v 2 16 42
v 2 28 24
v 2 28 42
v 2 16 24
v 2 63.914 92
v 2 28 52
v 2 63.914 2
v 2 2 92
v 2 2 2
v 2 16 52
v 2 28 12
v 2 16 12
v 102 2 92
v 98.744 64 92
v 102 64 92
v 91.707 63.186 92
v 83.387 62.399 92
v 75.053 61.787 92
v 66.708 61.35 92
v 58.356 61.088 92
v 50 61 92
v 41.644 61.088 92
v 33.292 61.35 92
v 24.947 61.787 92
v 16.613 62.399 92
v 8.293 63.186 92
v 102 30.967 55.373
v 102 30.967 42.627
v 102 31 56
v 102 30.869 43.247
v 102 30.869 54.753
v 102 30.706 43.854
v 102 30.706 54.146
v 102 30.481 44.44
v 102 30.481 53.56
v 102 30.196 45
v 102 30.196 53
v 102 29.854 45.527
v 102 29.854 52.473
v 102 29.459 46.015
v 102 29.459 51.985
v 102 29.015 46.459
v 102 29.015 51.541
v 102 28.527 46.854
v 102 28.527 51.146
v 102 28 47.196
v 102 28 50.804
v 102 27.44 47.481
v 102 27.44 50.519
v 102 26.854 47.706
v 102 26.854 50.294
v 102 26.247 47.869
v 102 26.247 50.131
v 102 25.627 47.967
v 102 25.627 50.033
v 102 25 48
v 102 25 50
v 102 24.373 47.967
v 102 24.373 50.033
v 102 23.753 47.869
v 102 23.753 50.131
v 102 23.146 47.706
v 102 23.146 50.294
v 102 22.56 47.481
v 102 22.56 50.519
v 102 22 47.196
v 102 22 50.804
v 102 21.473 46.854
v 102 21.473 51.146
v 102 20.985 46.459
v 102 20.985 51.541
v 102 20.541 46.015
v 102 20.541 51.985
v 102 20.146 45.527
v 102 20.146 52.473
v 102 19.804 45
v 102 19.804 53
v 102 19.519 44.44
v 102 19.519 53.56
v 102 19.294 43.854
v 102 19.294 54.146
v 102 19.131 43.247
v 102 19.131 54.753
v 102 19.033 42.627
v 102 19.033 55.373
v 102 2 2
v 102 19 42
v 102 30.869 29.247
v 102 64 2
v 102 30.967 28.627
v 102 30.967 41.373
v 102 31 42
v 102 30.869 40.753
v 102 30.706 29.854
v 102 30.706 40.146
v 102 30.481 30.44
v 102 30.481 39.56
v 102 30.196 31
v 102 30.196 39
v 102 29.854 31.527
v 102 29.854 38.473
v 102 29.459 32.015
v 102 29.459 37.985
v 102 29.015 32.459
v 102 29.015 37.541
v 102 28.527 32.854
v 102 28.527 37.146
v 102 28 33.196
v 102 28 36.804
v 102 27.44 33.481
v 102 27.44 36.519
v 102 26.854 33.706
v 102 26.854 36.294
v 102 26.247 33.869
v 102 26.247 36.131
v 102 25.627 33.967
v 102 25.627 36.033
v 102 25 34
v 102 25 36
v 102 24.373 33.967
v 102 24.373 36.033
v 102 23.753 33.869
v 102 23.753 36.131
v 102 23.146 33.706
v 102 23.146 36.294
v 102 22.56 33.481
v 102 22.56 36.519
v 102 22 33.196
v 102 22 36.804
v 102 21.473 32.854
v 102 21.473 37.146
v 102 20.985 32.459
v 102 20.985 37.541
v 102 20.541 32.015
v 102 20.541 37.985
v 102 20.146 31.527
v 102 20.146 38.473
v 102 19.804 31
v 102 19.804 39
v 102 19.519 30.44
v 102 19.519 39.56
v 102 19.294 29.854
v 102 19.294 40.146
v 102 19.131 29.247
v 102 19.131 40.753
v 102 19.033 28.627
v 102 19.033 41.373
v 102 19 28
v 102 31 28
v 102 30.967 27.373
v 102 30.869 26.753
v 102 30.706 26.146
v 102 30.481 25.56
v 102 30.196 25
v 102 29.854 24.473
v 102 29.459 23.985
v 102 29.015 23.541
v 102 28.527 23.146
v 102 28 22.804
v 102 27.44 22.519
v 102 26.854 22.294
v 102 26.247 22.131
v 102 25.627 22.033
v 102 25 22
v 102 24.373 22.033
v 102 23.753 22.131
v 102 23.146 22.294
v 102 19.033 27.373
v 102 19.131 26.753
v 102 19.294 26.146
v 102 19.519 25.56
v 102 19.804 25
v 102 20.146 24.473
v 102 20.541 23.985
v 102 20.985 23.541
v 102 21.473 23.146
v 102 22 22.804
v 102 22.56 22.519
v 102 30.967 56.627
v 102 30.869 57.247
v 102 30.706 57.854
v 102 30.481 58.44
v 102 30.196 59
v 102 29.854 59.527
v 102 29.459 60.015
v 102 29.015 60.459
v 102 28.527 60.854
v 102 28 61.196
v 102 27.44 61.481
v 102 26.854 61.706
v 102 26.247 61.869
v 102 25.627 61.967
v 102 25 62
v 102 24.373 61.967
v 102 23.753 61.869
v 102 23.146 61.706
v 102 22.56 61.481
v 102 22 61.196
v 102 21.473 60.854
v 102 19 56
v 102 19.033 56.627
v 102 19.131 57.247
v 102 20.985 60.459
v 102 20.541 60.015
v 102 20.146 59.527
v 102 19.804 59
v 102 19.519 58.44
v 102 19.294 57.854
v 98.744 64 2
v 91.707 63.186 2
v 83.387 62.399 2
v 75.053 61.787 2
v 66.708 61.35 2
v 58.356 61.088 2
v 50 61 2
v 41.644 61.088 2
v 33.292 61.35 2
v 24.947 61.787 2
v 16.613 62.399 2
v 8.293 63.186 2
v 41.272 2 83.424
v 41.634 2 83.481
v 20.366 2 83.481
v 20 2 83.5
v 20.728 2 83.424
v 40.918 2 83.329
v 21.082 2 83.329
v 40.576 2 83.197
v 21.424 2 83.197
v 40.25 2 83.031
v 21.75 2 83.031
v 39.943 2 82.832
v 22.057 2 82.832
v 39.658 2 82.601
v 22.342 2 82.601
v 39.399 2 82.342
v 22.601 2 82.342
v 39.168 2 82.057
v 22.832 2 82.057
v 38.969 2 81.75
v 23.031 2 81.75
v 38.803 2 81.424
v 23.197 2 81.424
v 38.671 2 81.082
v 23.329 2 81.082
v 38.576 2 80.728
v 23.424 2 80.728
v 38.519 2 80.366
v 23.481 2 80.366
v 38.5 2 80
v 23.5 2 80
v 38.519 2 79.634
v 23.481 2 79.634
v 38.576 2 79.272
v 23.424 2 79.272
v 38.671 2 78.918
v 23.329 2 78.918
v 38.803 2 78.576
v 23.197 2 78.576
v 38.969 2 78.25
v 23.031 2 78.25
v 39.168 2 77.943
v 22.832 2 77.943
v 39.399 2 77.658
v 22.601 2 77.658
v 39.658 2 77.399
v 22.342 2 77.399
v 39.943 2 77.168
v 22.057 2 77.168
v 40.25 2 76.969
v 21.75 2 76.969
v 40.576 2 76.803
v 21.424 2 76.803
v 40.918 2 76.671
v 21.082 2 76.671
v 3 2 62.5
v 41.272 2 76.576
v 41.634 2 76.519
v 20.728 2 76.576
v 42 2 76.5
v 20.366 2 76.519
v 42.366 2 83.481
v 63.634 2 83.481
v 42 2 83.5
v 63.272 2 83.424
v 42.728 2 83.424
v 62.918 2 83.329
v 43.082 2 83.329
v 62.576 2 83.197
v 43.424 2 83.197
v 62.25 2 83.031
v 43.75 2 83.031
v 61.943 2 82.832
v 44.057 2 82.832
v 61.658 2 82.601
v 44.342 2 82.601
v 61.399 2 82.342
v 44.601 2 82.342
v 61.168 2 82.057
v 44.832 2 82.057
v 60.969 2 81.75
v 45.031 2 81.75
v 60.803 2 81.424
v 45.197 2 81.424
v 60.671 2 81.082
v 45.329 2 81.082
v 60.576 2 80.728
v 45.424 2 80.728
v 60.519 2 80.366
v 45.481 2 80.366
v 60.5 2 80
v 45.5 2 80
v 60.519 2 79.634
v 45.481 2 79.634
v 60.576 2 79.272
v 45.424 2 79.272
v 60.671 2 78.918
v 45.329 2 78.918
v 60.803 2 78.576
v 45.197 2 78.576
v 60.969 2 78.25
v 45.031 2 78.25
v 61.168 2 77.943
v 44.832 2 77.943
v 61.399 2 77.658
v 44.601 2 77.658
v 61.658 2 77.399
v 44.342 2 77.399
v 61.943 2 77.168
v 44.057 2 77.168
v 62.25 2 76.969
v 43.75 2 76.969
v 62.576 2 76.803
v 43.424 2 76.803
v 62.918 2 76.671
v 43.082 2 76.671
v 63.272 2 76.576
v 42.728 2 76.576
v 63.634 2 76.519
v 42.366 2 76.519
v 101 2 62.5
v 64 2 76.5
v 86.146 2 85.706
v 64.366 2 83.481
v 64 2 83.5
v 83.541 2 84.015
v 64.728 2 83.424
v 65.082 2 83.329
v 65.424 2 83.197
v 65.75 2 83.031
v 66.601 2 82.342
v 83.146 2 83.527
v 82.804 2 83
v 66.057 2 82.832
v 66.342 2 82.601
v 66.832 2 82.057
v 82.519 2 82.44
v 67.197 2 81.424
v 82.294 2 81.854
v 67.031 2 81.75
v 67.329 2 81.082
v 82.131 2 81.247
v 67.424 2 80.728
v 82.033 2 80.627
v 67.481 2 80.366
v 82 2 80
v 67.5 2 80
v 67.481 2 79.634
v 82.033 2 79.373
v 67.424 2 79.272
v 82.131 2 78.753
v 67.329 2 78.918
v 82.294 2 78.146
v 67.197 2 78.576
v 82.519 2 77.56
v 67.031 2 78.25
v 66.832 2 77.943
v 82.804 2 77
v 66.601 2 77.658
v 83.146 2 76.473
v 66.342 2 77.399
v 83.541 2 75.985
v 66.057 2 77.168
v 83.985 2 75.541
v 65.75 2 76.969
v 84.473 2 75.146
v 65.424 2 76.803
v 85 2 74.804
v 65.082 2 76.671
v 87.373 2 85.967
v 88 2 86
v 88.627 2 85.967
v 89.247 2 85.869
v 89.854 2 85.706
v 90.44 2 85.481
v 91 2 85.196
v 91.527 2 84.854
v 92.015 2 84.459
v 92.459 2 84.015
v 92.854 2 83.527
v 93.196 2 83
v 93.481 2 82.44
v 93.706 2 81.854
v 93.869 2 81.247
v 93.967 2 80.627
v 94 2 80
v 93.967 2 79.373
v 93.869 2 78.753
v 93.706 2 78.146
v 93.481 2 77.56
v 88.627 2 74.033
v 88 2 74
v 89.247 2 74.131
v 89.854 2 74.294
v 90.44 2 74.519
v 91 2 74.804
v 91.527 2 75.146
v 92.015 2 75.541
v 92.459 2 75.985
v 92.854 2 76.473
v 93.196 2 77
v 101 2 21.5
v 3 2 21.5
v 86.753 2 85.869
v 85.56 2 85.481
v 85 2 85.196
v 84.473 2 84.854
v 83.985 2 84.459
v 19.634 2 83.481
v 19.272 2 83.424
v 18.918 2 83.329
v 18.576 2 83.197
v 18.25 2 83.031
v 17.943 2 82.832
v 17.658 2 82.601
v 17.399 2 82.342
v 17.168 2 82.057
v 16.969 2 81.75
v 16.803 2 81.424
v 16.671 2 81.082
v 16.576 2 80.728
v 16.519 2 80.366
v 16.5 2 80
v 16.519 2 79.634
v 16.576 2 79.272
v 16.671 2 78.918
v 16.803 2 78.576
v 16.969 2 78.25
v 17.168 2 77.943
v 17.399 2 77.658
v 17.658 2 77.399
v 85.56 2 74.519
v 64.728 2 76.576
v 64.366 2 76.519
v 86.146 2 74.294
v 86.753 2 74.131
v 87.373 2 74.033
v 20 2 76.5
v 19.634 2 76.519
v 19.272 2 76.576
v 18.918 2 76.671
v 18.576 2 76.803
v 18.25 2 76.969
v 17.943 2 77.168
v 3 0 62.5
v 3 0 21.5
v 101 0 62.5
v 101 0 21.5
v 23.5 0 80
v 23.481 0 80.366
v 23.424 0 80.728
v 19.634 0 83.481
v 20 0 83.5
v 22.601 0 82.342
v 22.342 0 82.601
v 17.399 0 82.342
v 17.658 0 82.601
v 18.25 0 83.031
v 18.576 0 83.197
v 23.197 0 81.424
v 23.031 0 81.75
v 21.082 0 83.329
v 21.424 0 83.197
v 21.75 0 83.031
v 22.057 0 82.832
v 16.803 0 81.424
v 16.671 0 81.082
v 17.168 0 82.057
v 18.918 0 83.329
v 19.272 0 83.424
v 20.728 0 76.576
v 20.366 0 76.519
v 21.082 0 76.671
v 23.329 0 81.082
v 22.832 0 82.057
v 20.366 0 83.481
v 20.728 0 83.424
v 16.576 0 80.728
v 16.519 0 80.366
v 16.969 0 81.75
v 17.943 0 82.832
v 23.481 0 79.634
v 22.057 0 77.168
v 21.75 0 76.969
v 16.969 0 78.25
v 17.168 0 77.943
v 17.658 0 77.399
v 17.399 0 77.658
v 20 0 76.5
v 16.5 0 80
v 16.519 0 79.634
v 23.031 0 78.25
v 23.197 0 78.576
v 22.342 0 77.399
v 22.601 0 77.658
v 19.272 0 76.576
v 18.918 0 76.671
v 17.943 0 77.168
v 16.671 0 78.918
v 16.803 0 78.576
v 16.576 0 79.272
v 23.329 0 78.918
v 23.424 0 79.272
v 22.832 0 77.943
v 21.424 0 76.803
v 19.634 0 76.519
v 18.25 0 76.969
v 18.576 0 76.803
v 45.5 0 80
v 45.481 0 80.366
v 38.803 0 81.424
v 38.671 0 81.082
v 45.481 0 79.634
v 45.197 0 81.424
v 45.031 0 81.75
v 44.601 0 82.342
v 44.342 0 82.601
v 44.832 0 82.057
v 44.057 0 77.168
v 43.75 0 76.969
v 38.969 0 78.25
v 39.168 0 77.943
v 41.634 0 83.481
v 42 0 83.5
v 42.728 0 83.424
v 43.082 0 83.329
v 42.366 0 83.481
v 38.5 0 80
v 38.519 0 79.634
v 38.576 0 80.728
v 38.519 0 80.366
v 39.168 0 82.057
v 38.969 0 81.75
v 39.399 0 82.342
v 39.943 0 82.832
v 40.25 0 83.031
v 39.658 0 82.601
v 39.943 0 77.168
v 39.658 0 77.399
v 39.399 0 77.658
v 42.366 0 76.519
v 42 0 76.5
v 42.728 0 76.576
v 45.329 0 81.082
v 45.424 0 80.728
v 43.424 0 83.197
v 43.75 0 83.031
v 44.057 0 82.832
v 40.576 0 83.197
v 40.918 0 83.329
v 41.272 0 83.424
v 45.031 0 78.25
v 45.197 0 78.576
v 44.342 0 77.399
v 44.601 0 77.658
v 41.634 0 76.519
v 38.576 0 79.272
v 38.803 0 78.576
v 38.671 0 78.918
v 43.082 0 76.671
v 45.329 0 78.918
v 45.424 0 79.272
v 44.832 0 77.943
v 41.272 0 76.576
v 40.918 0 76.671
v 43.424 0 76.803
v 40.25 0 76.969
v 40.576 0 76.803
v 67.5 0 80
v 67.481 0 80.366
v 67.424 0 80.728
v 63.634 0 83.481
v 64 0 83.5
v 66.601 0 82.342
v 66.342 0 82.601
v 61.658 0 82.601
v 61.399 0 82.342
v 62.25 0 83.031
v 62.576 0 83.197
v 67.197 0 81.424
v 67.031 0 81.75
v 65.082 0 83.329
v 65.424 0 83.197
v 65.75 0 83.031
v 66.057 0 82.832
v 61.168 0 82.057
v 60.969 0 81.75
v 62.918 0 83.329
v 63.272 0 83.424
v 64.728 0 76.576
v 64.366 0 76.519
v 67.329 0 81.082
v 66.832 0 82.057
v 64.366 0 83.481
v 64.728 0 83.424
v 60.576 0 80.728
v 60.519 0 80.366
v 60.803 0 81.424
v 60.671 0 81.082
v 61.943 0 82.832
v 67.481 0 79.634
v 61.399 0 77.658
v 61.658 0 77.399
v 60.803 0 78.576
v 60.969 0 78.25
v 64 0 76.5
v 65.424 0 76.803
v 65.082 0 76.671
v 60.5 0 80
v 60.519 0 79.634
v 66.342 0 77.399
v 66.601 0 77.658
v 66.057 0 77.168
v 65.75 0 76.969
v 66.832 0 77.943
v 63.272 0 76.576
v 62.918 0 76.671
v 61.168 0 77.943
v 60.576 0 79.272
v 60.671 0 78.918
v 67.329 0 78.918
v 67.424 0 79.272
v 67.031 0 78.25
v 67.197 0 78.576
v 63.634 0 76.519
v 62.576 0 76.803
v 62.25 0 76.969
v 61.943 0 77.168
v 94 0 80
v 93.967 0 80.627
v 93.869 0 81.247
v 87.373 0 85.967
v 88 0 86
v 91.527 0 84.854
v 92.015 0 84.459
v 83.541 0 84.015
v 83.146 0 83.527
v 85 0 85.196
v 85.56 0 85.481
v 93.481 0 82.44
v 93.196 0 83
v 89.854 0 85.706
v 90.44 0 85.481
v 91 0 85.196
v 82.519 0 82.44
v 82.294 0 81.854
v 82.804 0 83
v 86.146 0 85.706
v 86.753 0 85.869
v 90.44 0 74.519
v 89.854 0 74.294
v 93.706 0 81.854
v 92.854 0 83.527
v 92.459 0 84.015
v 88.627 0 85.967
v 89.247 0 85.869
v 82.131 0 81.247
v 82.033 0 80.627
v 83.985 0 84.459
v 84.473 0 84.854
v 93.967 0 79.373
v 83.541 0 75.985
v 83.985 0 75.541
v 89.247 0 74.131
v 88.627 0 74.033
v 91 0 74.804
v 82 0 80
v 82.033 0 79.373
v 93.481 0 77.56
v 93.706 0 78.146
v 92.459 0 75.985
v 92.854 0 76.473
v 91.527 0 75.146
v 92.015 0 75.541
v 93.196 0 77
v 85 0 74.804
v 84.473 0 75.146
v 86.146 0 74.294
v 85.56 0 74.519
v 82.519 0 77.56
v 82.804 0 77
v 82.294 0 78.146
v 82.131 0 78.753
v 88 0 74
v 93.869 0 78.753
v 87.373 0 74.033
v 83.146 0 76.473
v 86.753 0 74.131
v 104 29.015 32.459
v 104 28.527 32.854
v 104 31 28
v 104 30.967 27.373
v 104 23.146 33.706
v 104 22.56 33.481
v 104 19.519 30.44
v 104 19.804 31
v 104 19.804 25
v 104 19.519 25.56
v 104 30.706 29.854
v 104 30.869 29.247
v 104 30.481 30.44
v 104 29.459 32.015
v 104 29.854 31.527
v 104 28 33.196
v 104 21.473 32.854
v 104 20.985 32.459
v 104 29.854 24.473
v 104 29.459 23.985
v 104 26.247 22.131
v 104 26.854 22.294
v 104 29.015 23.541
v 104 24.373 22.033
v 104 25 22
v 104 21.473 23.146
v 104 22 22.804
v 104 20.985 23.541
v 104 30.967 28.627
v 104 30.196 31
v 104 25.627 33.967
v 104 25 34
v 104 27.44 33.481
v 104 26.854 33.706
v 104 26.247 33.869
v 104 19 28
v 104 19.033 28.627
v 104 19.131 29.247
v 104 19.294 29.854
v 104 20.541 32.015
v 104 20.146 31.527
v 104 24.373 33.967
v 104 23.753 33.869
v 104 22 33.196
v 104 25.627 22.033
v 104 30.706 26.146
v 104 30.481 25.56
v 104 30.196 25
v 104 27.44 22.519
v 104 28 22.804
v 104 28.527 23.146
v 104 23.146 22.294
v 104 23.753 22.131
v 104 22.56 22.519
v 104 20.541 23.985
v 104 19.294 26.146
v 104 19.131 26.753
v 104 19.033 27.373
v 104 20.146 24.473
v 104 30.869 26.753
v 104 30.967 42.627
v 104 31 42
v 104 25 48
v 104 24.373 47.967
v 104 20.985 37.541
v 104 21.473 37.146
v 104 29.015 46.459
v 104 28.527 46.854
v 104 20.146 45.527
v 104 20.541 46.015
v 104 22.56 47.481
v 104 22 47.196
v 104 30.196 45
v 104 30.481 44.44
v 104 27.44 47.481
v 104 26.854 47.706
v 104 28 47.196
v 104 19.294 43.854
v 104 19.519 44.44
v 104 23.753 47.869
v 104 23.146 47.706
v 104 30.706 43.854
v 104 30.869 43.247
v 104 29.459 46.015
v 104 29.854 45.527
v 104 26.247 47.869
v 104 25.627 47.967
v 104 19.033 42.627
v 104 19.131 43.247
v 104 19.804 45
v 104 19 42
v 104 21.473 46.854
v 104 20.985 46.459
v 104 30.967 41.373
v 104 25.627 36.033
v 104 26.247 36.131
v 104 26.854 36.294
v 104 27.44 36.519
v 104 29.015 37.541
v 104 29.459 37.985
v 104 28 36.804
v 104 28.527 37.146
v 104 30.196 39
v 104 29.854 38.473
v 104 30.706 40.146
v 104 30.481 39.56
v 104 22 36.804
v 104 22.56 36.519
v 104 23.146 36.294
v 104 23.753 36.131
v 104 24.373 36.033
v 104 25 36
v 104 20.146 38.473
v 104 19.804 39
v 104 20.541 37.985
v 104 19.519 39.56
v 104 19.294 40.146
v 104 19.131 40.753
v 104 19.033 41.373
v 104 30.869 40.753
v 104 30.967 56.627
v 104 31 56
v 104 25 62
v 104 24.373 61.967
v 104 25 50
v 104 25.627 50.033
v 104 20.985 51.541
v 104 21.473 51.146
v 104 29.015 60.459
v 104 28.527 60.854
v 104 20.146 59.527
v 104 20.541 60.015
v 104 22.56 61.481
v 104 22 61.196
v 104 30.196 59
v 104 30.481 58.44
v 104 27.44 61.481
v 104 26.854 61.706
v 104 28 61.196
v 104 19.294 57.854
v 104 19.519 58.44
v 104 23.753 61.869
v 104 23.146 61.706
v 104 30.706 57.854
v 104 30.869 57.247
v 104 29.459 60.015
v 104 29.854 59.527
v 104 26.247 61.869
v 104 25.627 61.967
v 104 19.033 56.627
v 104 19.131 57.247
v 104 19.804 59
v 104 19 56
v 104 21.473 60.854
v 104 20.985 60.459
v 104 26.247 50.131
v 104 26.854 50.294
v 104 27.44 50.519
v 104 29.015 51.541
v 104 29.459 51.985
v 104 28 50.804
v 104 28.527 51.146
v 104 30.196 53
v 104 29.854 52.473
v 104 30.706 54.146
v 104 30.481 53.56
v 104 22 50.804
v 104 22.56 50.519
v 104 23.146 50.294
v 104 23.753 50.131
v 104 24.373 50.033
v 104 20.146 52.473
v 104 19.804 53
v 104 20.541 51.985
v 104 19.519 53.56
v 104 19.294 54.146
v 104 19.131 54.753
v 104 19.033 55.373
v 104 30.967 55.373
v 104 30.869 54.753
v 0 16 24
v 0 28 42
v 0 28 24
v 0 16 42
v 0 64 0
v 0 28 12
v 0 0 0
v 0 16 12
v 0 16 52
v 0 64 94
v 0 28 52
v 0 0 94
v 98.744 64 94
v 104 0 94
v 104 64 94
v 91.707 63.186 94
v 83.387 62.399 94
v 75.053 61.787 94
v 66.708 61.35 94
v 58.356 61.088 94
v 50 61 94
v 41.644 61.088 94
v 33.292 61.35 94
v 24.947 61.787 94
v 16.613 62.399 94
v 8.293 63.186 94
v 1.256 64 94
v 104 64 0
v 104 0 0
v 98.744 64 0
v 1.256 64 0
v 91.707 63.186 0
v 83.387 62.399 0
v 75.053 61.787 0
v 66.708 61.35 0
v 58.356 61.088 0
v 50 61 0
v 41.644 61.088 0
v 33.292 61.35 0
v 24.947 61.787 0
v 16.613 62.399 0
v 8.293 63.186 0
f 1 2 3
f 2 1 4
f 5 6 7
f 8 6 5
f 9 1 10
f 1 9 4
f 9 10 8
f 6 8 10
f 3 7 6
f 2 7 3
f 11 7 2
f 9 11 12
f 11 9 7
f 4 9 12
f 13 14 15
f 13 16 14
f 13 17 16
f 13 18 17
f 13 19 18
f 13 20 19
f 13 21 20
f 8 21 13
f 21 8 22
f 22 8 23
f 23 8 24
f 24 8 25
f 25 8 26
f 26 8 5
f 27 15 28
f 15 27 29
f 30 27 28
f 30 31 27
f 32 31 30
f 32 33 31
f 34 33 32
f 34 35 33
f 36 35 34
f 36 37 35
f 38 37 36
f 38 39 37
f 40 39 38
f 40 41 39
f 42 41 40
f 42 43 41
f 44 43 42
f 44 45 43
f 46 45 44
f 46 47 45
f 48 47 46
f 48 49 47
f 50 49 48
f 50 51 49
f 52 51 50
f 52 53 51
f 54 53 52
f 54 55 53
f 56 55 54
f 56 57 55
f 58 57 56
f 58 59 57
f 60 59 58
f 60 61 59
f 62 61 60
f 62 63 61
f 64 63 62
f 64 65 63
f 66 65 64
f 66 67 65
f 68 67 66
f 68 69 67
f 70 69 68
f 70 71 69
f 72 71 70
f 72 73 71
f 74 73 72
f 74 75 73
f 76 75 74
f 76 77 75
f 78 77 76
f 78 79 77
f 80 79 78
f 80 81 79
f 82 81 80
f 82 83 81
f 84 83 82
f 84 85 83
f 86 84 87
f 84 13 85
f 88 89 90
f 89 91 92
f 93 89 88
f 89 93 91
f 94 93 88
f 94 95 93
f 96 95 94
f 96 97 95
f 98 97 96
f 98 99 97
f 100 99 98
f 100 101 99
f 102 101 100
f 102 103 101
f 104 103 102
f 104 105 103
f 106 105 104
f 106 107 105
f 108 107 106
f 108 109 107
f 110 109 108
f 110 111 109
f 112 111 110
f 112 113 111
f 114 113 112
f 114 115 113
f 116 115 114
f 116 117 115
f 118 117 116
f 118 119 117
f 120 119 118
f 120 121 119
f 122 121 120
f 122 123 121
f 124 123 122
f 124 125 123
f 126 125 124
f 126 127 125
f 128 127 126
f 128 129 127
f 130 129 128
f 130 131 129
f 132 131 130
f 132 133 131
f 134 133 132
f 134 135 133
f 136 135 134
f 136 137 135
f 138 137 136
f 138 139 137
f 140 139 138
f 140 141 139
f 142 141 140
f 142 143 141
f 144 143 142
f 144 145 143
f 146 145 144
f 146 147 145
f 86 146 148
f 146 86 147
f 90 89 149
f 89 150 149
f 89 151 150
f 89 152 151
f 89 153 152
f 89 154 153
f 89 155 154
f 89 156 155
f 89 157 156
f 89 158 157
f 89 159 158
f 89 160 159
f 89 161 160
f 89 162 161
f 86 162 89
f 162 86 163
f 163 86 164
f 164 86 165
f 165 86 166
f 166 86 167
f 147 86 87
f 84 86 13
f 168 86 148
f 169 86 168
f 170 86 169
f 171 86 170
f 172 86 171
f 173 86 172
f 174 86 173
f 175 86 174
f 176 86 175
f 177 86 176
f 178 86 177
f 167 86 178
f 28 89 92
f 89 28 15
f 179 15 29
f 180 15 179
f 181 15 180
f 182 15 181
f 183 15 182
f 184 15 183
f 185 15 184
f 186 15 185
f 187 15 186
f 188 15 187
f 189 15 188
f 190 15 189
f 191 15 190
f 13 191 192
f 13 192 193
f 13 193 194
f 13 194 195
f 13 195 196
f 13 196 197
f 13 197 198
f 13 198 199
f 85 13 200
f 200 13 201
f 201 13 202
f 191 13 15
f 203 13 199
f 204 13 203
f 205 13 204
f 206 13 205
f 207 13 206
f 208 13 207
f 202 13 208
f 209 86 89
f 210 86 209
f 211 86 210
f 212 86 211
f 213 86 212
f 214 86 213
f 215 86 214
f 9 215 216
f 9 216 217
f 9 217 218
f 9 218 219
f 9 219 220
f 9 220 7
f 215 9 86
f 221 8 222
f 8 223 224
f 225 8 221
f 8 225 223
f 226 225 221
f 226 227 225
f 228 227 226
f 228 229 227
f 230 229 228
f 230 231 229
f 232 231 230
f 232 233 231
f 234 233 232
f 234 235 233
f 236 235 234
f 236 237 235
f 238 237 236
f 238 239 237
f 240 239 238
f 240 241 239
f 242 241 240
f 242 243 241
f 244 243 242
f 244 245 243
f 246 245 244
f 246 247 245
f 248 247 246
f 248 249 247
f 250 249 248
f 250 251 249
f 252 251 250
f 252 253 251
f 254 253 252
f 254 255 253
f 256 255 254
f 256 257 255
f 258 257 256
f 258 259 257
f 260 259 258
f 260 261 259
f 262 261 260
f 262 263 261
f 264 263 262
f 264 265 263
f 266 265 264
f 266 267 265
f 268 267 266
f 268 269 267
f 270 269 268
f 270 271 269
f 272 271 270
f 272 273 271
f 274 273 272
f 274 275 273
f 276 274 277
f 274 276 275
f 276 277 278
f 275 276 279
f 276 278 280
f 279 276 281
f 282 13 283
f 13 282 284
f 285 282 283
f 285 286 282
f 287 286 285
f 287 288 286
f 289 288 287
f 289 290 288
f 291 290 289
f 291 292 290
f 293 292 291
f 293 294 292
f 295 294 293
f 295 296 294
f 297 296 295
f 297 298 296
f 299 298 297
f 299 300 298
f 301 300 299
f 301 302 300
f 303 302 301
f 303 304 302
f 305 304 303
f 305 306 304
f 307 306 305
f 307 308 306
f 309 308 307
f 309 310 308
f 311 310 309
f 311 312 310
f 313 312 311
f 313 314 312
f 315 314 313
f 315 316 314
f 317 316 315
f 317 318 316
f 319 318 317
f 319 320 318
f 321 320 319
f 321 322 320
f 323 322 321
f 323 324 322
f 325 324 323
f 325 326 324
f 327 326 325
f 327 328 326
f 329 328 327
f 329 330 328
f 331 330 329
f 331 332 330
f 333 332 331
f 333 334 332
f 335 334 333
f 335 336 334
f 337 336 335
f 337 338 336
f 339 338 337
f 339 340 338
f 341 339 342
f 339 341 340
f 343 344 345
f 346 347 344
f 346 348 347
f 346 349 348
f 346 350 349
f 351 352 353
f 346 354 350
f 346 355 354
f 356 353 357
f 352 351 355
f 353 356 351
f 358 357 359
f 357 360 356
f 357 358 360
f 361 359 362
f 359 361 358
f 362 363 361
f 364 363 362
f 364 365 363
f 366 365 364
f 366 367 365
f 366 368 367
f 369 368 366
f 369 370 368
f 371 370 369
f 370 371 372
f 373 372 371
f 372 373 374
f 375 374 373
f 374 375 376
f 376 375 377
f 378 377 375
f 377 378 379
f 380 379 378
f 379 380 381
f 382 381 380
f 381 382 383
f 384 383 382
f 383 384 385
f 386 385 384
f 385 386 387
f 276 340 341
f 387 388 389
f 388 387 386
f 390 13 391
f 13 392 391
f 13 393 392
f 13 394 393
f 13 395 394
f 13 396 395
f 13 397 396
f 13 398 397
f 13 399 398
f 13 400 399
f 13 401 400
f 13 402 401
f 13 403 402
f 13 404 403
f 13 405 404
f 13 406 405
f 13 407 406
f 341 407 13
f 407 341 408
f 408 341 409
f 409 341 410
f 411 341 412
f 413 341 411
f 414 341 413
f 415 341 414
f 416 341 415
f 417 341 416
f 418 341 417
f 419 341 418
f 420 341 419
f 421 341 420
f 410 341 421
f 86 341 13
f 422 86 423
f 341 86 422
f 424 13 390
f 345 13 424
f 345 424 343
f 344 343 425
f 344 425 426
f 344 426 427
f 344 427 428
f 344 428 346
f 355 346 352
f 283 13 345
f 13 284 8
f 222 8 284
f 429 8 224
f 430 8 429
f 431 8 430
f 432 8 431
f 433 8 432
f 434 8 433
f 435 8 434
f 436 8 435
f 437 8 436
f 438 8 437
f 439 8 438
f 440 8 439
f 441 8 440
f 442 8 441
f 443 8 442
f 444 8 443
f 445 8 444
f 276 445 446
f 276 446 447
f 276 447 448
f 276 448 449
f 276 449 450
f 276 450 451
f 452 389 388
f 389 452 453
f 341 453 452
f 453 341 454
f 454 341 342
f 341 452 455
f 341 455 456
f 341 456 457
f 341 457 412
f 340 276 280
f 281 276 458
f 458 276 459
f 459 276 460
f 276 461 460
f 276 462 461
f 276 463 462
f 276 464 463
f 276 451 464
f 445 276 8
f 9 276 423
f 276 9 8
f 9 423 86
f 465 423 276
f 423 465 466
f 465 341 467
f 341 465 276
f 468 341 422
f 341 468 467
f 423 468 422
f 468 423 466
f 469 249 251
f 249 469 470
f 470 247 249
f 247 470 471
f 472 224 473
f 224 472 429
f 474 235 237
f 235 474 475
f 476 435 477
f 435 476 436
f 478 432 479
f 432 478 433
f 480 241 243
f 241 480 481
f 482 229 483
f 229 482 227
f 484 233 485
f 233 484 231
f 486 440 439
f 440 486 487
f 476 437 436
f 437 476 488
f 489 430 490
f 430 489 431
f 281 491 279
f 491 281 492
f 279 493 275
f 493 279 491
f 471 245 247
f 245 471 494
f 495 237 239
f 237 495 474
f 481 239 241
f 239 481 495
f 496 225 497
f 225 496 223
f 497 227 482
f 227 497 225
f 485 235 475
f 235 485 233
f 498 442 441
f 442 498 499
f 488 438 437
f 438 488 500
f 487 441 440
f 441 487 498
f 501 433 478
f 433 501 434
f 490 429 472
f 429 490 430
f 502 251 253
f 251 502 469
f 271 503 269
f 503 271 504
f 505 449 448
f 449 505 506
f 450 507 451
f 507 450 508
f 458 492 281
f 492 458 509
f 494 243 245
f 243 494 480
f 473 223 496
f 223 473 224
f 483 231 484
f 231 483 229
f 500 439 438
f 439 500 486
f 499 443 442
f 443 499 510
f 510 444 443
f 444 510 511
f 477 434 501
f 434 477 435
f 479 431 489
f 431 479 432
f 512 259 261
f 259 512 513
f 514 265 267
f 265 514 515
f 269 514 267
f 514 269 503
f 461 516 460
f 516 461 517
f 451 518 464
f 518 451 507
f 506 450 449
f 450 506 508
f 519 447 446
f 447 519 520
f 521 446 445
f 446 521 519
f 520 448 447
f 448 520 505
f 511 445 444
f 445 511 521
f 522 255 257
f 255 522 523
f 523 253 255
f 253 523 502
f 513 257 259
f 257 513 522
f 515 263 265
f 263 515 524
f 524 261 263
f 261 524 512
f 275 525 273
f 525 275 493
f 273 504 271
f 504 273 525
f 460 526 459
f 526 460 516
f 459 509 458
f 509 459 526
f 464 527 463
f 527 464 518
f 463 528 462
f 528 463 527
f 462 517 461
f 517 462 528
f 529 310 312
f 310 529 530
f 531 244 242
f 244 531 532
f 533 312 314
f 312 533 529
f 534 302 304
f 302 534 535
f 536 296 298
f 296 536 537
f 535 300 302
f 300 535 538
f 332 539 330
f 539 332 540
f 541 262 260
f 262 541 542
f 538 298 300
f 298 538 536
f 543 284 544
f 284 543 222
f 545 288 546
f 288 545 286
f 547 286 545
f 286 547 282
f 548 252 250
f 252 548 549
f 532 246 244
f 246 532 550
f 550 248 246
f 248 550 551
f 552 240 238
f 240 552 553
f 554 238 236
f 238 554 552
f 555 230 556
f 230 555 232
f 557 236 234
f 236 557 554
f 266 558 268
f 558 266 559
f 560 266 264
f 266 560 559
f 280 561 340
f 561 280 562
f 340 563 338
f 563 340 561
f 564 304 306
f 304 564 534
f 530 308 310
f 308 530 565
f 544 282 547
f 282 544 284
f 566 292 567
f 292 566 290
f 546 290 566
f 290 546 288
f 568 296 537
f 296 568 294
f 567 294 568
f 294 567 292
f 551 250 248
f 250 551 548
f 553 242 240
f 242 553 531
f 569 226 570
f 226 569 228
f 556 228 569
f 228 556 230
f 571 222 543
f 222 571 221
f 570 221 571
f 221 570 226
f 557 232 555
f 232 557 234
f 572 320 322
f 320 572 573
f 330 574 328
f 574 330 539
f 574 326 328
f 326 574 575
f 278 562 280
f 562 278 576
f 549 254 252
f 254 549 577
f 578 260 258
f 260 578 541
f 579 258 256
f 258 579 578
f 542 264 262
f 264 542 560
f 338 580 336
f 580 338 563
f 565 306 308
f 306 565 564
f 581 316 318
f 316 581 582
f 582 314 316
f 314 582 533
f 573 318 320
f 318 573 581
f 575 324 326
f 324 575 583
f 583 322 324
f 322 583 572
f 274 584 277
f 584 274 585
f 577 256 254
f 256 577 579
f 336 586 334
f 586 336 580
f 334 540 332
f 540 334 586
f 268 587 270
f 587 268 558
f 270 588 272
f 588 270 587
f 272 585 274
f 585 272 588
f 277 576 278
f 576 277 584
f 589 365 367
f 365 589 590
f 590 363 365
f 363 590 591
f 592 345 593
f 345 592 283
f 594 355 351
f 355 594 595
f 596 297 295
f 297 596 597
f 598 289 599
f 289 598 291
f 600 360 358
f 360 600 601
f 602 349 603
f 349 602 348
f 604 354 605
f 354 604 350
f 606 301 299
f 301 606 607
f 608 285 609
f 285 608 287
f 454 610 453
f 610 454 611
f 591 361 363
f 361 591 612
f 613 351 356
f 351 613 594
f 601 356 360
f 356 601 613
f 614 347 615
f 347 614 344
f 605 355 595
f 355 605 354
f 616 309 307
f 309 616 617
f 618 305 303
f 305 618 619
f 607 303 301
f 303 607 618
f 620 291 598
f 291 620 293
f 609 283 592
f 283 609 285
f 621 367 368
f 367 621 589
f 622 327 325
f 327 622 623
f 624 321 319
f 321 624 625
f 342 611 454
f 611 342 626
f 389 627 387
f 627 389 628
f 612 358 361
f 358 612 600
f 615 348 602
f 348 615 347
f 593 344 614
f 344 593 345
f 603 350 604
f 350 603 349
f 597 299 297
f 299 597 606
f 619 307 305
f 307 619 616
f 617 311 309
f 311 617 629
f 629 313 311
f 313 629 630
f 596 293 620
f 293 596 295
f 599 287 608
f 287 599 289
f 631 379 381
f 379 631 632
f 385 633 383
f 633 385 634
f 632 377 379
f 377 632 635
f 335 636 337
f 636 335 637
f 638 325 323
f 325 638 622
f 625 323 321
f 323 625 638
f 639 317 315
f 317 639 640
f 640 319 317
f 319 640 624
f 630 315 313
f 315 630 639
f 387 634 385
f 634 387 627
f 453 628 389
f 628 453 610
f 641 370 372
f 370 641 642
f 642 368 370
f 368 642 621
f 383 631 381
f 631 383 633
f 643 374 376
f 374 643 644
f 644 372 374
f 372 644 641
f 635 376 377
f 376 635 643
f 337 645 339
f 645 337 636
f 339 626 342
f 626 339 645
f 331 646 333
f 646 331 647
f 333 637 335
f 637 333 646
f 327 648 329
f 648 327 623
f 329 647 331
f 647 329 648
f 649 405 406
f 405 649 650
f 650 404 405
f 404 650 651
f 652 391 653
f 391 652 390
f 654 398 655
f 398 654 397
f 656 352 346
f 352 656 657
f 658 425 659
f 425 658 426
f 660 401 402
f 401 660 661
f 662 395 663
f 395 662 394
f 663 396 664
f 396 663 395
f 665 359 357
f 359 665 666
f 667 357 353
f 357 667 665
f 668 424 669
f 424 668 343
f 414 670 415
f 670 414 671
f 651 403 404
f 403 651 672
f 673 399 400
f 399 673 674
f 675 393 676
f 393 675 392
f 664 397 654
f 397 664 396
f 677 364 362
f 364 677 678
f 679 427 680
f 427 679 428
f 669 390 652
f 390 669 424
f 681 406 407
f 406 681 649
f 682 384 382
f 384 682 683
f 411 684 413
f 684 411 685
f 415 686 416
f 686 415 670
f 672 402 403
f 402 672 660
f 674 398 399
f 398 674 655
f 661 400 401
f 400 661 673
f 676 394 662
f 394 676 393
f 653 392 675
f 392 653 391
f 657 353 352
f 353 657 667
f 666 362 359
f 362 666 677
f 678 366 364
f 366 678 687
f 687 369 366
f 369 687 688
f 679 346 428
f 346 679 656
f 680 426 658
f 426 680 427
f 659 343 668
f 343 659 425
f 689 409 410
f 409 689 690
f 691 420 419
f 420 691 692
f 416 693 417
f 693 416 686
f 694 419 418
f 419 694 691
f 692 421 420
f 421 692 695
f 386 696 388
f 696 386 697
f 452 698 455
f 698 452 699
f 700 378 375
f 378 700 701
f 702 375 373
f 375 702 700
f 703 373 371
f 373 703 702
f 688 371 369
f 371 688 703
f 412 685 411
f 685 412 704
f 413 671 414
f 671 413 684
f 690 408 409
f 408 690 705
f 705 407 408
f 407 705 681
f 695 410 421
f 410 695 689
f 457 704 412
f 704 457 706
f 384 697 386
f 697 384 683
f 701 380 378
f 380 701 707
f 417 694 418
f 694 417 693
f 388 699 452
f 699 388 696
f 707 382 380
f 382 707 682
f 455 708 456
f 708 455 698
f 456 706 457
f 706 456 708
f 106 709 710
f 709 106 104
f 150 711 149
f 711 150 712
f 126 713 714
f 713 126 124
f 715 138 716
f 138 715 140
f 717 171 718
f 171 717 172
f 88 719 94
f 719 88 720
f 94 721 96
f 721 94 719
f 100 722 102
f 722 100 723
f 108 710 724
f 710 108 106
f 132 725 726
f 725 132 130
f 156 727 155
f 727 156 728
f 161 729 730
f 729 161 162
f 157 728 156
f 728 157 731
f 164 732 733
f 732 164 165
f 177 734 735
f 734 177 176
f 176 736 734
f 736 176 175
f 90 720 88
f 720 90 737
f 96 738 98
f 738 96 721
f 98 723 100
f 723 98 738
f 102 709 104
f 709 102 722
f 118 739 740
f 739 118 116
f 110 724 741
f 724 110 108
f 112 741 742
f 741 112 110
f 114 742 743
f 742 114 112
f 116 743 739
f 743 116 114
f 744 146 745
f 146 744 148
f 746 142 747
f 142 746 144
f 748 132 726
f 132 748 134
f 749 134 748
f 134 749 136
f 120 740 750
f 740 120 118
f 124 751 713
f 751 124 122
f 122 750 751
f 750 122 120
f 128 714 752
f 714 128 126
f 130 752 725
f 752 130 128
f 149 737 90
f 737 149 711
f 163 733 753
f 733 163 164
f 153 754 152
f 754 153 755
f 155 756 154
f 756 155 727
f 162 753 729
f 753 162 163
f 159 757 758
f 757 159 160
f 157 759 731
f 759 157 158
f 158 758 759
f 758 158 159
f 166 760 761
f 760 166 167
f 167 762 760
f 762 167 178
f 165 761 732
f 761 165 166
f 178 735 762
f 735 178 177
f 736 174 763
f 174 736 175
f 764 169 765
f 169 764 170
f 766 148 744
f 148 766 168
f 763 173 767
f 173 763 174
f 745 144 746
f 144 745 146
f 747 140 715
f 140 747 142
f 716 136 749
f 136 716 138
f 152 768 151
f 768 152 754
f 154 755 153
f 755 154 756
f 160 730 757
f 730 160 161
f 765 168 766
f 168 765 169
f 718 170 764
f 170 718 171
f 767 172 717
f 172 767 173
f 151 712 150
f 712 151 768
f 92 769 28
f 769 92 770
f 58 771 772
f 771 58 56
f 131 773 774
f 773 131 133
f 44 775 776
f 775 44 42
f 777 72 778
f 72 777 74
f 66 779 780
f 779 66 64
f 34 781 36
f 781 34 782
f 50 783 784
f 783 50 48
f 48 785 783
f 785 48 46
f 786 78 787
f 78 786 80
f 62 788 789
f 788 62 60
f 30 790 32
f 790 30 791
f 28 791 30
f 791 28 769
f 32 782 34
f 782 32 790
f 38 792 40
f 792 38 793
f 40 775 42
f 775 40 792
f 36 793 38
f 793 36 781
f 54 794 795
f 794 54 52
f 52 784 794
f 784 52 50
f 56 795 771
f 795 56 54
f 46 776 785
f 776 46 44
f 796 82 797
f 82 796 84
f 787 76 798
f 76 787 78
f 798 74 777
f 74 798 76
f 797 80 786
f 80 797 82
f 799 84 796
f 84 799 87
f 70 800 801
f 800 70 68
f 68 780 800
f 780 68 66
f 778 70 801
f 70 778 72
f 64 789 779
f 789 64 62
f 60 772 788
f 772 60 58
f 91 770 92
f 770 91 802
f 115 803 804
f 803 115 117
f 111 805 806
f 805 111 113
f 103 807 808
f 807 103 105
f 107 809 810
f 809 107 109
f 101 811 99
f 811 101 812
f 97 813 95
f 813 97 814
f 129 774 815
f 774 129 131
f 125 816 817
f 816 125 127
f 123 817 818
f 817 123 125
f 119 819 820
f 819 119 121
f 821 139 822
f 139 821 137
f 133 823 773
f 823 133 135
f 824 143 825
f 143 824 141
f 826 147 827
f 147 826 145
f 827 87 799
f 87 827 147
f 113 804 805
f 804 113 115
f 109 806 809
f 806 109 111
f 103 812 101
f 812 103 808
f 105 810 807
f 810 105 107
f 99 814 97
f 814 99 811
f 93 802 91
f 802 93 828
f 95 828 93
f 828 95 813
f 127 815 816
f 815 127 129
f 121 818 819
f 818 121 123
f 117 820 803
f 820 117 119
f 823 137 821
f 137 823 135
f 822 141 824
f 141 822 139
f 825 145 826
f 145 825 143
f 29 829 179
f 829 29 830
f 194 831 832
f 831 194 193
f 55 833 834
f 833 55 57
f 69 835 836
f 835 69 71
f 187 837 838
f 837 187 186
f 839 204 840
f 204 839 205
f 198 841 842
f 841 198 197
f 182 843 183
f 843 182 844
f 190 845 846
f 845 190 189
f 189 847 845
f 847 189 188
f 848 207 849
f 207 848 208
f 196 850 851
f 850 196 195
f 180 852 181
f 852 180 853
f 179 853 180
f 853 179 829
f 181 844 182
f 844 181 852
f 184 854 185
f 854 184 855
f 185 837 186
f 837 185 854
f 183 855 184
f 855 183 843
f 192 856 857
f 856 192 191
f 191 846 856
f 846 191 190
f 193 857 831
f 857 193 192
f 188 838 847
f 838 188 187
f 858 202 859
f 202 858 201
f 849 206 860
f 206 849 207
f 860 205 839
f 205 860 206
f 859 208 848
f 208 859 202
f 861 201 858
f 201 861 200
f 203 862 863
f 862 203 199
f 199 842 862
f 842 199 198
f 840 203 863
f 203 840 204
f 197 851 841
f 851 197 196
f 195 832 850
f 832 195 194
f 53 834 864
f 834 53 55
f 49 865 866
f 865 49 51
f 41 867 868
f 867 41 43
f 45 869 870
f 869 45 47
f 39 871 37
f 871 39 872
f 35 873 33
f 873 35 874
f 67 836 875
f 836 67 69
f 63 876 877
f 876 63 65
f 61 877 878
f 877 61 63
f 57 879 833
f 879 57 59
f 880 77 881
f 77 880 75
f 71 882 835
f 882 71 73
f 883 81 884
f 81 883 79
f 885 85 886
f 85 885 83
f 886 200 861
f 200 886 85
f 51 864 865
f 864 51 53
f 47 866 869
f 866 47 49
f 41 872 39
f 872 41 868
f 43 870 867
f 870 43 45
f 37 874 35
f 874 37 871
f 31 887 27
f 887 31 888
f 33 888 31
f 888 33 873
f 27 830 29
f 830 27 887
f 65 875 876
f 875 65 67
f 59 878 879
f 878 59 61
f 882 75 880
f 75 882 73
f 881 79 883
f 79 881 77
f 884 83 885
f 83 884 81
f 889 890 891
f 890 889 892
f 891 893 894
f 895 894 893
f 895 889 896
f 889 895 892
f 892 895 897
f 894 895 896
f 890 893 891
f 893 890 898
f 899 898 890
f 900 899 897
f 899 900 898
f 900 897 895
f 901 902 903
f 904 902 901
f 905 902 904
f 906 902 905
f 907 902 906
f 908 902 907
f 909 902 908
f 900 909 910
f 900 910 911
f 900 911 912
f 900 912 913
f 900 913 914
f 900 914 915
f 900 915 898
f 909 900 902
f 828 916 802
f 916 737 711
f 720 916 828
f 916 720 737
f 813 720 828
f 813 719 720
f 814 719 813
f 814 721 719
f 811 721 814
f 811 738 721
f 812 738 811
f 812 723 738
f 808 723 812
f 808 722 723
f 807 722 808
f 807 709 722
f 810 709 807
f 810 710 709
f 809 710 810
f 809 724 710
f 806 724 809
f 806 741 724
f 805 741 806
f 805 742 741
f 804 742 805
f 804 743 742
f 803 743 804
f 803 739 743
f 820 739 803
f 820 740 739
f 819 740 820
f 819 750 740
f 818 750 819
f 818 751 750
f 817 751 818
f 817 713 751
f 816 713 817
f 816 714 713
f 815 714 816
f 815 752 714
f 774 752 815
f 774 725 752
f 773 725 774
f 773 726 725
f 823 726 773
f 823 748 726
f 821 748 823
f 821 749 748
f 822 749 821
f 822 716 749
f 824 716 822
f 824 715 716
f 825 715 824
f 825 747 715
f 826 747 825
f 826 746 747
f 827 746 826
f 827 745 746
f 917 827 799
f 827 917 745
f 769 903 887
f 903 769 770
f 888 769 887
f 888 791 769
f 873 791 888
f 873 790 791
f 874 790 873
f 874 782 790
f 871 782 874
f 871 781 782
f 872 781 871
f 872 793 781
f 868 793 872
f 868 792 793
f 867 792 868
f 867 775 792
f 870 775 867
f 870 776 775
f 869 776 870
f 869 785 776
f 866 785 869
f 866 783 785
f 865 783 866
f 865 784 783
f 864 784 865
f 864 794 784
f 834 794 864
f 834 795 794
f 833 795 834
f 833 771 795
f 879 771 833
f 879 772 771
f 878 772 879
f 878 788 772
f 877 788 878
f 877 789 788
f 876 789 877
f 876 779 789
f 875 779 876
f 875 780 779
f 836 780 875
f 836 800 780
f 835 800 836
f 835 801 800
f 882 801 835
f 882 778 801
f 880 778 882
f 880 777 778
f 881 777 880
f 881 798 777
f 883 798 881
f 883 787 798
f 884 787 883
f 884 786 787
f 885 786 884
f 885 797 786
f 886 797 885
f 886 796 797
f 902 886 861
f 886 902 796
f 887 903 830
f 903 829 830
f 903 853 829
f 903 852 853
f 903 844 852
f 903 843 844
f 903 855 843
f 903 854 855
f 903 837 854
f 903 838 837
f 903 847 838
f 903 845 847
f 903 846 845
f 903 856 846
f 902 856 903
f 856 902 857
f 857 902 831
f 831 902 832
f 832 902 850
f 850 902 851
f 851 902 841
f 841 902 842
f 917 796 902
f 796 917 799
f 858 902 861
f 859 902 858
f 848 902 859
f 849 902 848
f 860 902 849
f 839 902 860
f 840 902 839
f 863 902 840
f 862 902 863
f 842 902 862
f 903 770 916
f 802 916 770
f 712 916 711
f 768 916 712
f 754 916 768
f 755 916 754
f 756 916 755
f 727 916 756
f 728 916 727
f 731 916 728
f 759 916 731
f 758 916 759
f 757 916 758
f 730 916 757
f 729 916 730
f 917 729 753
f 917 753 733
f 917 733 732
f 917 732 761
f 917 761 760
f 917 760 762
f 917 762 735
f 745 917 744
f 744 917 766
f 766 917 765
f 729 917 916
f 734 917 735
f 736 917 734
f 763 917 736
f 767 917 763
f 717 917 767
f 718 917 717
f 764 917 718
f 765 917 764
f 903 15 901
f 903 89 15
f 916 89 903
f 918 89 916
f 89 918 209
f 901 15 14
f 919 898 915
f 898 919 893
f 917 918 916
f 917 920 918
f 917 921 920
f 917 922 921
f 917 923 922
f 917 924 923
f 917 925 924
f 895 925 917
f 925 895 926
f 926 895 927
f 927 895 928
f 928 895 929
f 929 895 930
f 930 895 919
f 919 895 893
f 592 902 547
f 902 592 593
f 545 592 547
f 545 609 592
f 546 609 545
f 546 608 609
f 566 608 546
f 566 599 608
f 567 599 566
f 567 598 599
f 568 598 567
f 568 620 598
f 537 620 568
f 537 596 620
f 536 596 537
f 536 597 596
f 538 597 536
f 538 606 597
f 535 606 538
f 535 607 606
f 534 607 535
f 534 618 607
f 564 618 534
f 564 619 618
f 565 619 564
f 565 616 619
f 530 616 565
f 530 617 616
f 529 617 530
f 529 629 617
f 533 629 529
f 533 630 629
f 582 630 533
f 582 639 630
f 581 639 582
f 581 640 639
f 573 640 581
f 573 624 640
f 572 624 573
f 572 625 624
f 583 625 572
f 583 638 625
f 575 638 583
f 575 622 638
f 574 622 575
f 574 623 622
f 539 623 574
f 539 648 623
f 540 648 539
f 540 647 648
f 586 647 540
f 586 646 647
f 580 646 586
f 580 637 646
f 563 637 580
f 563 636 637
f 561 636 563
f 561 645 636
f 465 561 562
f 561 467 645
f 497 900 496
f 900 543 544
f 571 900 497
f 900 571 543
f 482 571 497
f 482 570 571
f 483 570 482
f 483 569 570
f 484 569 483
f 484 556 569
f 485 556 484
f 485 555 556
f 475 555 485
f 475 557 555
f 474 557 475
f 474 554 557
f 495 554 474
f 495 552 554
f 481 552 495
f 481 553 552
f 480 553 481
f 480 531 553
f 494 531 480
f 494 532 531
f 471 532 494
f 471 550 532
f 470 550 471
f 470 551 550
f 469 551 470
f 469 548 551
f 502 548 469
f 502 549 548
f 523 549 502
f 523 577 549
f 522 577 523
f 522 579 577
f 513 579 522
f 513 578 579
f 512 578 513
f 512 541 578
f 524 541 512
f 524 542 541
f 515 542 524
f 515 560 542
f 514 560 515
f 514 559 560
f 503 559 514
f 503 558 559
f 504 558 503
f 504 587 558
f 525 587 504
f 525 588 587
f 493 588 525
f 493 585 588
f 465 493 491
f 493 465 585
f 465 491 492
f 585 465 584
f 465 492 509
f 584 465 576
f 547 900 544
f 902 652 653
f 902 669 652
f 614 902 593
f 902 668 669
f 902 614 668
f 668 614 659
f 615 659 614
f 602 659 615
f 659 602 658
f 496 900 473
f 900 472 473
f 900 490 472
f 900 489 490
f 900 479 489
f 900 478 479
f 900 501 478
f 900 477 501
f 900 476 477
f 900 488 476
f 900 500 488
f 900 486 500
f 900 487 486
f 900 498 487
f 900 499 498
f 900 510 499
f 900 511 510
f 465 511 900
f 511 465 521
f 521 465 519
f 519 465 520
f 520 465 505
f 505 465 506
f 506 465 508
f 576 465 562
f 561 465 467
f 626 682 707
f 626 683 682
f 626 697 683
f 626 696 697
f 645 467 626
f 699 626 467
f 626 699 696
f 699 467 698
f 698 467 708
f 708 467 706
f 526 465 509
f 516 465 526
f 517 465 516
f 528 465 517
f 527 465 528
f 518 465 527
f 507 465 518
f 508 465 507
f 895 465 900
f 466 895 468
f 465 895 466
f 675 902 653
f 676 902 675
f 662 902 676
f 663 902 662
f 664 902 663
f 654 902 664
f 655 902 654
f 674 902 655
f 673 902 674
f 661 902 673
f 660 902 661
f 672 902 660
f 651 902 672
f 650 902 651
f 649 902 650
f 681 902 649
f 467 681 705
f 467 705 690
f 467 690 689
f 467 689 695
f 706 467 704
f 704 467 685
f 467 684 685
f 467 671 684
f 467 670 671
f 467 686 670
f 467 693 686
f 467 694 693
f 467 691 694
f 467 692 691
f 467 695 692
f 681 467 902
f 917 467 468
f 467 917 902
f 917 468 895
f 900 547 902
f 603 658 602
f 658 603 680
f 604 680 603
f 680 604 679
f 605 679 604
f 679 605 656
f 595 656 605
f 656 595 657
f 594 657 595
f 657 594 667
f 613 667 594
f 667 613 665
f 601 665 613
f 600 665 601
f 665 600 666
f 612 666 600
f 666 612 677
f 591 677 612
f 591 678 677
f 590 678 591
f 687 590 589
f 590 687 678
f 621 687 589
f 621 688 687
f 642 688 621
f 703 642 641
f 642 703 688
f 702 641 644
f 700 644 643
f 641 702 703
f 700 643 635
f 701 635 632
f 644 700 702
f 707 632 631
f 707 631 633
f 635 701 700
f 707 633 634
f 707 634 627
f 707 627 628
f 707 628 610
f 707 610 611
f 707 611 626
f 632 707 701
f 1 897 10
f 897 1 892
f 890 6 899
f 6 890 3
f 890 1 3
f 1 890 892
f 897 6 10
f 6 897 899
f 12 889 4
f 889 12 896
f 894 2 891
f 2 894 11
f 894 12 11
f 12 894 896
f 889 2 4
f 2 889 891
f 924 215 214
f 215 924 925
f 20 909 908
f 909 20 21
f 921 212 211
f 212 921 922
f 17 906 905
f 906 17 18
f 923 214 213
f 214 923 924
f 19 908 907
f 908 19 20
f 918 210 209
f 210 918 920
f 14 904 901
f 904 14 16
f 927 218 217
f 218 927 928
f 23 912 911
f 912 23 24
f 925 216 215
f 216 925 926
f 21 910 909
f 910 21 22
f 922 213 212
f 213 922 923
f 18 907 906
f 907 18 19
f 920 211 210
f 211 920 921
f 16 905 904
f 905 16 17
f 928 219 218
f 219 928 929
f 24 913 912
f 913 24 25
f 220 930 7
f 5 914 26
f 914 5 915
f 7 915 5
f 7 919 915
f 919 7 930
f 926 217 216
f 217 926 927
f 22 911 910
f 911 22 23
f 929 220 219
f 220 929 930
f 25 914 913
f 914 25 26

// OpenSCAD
difference() {
    // main box
    translate([0,0,0]) {
        cube([104,64,94]);
    }
    
    // cut-outs
    translate([2,2,2]) {
        // main box
        cube([100,64,90]);
        
        // screen
        translate([1,-4,19.5]) {
            cube([98,64,41]);
        }
    }
    

    translate([10,0,80]) {
        // pot
        translate([10,0,0]) {
            rotate([90,0,0]) {
                cylinder(r = 3.5, h = 10, center = true, $fn = 60);
            }
        }
        
        // pot
        translate([32,0,0]) {
            rotate([90,0,0]) {
                cylinder(r = 3.5, h = 10, center = true, $fn = 60);
            }
        }
        
        // pot
        translate([54,0,0]) {
            rotate([90,0,0]) {
                cylinder(r = 3.5, h = 10, center = true, $fn = 60);
            }
        }
        
        // button
        translate([78,0,0]) {
            rotate([90,0,0]) {
                cylinder(r = 6, h = 10, center = true, $fn = 60);
            }
        }
    }
    
    
    
    // side buttons
    translate([100,25,28]) {
        translate([0,0,0]) {
            rotate([90,0,90]) {
                cylinder(r = 6, h = 10, center = true, $fn = 60);
            }
        }
        translate([0,0,14]) {
            rotate([90,0,90]) {
                cylinder(r = 6, h = 10, center = true, $fn = 60);
            }
        }
        translate([0,0,28]) {
            rotate([90,0,90]) {
                cylinder(r = 6, h = 10, center = true, $fn = 60);
            }
        }
    }
    

    // usb
    translate([-2,16,42]) {
        rotate([90,0,90]) {
            cube([12,10,12]);
        }
    }
    
    // power
    translate([-2,16,12]) {
        rotate([90,0,90]) {
            cube([12,12,12]);
        }
    }
    
    
    // back
    translate([50,460,50]) {
        rotate([0,0,0]) {
            cylinder(r = 399, h = 200, center = true, $fn = 300);
        }
    }
}

/*
difference() {
    // mounts
    union() {

        // uno mount
        translate([15,8,5]) {
            rotate([90,0,0]) {
                cylinder(r = 3, h = 12, center = true);
            }
        }

        // uno mount
        translate([65,8,8]) {
            rotate([90,0,0]) {
                cylinder(r = 3, h = 12, center = true);
            }
        }
        
        // uno mount fill
        translate([13,2,2]) {
            rotate([0,0,0]) {
                cube([4,12,2]);
            }
        }

        // screen bottom left
        translate([4,5,12+3]) {
            rotate([90,0,0]) {
                cylinder(r = 3, h = 6, center = true);
            }
        }

        // screen bottom right
        translate([100,5,12+3]) {
            rotate([90,0,0]) {
                cylinder(r = 3, h = 6, center = true);
            }
        }

        // screen top right
        translate([100,5,(12+3+60)-5]) {
            rotate([90,0,0]) {
                cylinder(r = 3, h = 6, center = true);
            }
        }

        // screen top left
        translate([4,5,(12+3+60)-5]) {
            rotate([90,0,0]) {
                cylinder(r = 3, h = 6, center = true);
            }
        }


        // top row buttons left
        translate([5,6,80]) {
            rotate([90,0,0]) {
                cylinder(r = 3, h = 8, center = true);
            }
        }
        
        // top button right mount fill
        translate([101,2,78]) {
            rotate([0,0,0]) {
                cube([2,8,4]);
            }
        }

        // top row buttons right
        translate([99,6,80]) {
            rotate([90,0,0]) {
                cylinder(r = 3, h = 8, center = true);
            }
        }
        
        // top button left mount fill
        translate([1,2,78]) {
            rotate([0,0,0]) {
                cube([2,8,4]);
            }
        }

        // side buttons top
        translate([100,25,70]) {
            rotate([90,0,90]) {
                cylinder(r = 3, h = 8, center = true);
            }
        }
        
        // side buttons bottom
        translate([100,25,14]) {
            rotate([90,0,90]) {
                cylinder(r = 3, h = 8, center = true);
            }
        }

        // temp board
        translate([70,35,2+2]) {
            rotate([0,0,0]) {
                cylinder(r = 3, h = 4, center = true);
            }
        }

        // relay front
        translate([90,25,90]) {
            rotate([0,0,0]) {
                cylinder(r = 3, h = 4, center = true);
            }
        }

        // relay back
        translate([62,45,90]) {
            rotate([0,0,0]) {
                cylinder(r = 3, h = 4, center = true);
            }
        }

        // bottom front support
        translate([2,2,2]) {
            rotate([0,0,0]) {
                cube([102,2,4]);
            }
        }

        // top front support
        translate([2,2,91]) {
            rotate([0,0,0]) {
                cube([102,1,1]);
            }
        }

        // lcd top support
        translate([2,2,63]) {
            rotate([0,0,0]) {
                cube([102,4,6]);
            }
        }

        // lcd bottom support
        translate([2,2,15]) {
            rotate([0,0,0]) {
                cube([102,4,6]);
            }
        }

        // left front support
        translate([1.5,2,2]) {
            rotate([0,0,0]) {
                cube([1,4,90]);
            }
        }

        // right front support
        translate([101.5,2,2]) {
            rotate([0,0,0]) {
                cube([1,4,90]);
            }
        }

        // right rear support
        translate([100,56,8]) {
            rotate([0,0,0]) {
                cube([2,8,80]);
            }
        }

        // left rear support
        translate([2,56,8]) {
            rotate([0,0,0]) {
                cube([2,8,80]);
            }
        }

        // bottom rear support
        translate([8,56,2]) {
            rotate([0,0,0]) {
                cube([90,8,2]);
            }
        }

        // top rear support
        translate([8,56,90]) {
            rotate([0,0,0]) {
                cube([90,8,2]);
            }
        }

        // rear bottom left mount
        translate([2,54,2]) {
            rotate([0,0,0]) {
                cube([8,10,8]);
            }
        }

        // rear bottom right mount
        translate([94,54,2]) {
            rotate([0,0,0]) {
                cube([8,10,8]);
            }
        }

        // rear top left mount
        translate([94,54,84]) {
            rotate([0,0,0]) {
                cube([8,10,8]);
            }
        }

        // rear top right mount
        translate([2,54,84]) {
            rotate([0,0,0]) {
                cube([8,10,8]);
            }
        }

        // top left depth support
        translate([2,2,91]) {
            rotate([0,0,0]) {
                cube([4,60,1]);
            }
        }

        // top right depth support
        translate([98,2,91]) {
            rotate([0,0,0]) {
                cube([4,60,1]);
            }
        }

        // bottom right depth support
        translate([98,2,2]) {
            rotate([0,0,0]) {
                cube([4,60,1]);
            }
        }

        // bottom left depth support
        translate([2,2,2]) {
            rotate([0,0,0]) {
                cube([4,60,1]);
            }
        }
        
        // lcd top right fill
        translate([101,2,68]) {
            rotate([0,0,0]) {
                cube([2,6,4]);
            }
        }
        
        // lcd top left fill
        translate([1,2,68]) {
            rotate([0,0,0]) {
                cube([2,6,4]);
            }
        }
    }
    
    // back
    translate([50,460,50]) {
        rotate([0,0,0]) {
            cylinder(r = 399, h = 200, center = true, $fn = 300);
        }
    }
}
*/
